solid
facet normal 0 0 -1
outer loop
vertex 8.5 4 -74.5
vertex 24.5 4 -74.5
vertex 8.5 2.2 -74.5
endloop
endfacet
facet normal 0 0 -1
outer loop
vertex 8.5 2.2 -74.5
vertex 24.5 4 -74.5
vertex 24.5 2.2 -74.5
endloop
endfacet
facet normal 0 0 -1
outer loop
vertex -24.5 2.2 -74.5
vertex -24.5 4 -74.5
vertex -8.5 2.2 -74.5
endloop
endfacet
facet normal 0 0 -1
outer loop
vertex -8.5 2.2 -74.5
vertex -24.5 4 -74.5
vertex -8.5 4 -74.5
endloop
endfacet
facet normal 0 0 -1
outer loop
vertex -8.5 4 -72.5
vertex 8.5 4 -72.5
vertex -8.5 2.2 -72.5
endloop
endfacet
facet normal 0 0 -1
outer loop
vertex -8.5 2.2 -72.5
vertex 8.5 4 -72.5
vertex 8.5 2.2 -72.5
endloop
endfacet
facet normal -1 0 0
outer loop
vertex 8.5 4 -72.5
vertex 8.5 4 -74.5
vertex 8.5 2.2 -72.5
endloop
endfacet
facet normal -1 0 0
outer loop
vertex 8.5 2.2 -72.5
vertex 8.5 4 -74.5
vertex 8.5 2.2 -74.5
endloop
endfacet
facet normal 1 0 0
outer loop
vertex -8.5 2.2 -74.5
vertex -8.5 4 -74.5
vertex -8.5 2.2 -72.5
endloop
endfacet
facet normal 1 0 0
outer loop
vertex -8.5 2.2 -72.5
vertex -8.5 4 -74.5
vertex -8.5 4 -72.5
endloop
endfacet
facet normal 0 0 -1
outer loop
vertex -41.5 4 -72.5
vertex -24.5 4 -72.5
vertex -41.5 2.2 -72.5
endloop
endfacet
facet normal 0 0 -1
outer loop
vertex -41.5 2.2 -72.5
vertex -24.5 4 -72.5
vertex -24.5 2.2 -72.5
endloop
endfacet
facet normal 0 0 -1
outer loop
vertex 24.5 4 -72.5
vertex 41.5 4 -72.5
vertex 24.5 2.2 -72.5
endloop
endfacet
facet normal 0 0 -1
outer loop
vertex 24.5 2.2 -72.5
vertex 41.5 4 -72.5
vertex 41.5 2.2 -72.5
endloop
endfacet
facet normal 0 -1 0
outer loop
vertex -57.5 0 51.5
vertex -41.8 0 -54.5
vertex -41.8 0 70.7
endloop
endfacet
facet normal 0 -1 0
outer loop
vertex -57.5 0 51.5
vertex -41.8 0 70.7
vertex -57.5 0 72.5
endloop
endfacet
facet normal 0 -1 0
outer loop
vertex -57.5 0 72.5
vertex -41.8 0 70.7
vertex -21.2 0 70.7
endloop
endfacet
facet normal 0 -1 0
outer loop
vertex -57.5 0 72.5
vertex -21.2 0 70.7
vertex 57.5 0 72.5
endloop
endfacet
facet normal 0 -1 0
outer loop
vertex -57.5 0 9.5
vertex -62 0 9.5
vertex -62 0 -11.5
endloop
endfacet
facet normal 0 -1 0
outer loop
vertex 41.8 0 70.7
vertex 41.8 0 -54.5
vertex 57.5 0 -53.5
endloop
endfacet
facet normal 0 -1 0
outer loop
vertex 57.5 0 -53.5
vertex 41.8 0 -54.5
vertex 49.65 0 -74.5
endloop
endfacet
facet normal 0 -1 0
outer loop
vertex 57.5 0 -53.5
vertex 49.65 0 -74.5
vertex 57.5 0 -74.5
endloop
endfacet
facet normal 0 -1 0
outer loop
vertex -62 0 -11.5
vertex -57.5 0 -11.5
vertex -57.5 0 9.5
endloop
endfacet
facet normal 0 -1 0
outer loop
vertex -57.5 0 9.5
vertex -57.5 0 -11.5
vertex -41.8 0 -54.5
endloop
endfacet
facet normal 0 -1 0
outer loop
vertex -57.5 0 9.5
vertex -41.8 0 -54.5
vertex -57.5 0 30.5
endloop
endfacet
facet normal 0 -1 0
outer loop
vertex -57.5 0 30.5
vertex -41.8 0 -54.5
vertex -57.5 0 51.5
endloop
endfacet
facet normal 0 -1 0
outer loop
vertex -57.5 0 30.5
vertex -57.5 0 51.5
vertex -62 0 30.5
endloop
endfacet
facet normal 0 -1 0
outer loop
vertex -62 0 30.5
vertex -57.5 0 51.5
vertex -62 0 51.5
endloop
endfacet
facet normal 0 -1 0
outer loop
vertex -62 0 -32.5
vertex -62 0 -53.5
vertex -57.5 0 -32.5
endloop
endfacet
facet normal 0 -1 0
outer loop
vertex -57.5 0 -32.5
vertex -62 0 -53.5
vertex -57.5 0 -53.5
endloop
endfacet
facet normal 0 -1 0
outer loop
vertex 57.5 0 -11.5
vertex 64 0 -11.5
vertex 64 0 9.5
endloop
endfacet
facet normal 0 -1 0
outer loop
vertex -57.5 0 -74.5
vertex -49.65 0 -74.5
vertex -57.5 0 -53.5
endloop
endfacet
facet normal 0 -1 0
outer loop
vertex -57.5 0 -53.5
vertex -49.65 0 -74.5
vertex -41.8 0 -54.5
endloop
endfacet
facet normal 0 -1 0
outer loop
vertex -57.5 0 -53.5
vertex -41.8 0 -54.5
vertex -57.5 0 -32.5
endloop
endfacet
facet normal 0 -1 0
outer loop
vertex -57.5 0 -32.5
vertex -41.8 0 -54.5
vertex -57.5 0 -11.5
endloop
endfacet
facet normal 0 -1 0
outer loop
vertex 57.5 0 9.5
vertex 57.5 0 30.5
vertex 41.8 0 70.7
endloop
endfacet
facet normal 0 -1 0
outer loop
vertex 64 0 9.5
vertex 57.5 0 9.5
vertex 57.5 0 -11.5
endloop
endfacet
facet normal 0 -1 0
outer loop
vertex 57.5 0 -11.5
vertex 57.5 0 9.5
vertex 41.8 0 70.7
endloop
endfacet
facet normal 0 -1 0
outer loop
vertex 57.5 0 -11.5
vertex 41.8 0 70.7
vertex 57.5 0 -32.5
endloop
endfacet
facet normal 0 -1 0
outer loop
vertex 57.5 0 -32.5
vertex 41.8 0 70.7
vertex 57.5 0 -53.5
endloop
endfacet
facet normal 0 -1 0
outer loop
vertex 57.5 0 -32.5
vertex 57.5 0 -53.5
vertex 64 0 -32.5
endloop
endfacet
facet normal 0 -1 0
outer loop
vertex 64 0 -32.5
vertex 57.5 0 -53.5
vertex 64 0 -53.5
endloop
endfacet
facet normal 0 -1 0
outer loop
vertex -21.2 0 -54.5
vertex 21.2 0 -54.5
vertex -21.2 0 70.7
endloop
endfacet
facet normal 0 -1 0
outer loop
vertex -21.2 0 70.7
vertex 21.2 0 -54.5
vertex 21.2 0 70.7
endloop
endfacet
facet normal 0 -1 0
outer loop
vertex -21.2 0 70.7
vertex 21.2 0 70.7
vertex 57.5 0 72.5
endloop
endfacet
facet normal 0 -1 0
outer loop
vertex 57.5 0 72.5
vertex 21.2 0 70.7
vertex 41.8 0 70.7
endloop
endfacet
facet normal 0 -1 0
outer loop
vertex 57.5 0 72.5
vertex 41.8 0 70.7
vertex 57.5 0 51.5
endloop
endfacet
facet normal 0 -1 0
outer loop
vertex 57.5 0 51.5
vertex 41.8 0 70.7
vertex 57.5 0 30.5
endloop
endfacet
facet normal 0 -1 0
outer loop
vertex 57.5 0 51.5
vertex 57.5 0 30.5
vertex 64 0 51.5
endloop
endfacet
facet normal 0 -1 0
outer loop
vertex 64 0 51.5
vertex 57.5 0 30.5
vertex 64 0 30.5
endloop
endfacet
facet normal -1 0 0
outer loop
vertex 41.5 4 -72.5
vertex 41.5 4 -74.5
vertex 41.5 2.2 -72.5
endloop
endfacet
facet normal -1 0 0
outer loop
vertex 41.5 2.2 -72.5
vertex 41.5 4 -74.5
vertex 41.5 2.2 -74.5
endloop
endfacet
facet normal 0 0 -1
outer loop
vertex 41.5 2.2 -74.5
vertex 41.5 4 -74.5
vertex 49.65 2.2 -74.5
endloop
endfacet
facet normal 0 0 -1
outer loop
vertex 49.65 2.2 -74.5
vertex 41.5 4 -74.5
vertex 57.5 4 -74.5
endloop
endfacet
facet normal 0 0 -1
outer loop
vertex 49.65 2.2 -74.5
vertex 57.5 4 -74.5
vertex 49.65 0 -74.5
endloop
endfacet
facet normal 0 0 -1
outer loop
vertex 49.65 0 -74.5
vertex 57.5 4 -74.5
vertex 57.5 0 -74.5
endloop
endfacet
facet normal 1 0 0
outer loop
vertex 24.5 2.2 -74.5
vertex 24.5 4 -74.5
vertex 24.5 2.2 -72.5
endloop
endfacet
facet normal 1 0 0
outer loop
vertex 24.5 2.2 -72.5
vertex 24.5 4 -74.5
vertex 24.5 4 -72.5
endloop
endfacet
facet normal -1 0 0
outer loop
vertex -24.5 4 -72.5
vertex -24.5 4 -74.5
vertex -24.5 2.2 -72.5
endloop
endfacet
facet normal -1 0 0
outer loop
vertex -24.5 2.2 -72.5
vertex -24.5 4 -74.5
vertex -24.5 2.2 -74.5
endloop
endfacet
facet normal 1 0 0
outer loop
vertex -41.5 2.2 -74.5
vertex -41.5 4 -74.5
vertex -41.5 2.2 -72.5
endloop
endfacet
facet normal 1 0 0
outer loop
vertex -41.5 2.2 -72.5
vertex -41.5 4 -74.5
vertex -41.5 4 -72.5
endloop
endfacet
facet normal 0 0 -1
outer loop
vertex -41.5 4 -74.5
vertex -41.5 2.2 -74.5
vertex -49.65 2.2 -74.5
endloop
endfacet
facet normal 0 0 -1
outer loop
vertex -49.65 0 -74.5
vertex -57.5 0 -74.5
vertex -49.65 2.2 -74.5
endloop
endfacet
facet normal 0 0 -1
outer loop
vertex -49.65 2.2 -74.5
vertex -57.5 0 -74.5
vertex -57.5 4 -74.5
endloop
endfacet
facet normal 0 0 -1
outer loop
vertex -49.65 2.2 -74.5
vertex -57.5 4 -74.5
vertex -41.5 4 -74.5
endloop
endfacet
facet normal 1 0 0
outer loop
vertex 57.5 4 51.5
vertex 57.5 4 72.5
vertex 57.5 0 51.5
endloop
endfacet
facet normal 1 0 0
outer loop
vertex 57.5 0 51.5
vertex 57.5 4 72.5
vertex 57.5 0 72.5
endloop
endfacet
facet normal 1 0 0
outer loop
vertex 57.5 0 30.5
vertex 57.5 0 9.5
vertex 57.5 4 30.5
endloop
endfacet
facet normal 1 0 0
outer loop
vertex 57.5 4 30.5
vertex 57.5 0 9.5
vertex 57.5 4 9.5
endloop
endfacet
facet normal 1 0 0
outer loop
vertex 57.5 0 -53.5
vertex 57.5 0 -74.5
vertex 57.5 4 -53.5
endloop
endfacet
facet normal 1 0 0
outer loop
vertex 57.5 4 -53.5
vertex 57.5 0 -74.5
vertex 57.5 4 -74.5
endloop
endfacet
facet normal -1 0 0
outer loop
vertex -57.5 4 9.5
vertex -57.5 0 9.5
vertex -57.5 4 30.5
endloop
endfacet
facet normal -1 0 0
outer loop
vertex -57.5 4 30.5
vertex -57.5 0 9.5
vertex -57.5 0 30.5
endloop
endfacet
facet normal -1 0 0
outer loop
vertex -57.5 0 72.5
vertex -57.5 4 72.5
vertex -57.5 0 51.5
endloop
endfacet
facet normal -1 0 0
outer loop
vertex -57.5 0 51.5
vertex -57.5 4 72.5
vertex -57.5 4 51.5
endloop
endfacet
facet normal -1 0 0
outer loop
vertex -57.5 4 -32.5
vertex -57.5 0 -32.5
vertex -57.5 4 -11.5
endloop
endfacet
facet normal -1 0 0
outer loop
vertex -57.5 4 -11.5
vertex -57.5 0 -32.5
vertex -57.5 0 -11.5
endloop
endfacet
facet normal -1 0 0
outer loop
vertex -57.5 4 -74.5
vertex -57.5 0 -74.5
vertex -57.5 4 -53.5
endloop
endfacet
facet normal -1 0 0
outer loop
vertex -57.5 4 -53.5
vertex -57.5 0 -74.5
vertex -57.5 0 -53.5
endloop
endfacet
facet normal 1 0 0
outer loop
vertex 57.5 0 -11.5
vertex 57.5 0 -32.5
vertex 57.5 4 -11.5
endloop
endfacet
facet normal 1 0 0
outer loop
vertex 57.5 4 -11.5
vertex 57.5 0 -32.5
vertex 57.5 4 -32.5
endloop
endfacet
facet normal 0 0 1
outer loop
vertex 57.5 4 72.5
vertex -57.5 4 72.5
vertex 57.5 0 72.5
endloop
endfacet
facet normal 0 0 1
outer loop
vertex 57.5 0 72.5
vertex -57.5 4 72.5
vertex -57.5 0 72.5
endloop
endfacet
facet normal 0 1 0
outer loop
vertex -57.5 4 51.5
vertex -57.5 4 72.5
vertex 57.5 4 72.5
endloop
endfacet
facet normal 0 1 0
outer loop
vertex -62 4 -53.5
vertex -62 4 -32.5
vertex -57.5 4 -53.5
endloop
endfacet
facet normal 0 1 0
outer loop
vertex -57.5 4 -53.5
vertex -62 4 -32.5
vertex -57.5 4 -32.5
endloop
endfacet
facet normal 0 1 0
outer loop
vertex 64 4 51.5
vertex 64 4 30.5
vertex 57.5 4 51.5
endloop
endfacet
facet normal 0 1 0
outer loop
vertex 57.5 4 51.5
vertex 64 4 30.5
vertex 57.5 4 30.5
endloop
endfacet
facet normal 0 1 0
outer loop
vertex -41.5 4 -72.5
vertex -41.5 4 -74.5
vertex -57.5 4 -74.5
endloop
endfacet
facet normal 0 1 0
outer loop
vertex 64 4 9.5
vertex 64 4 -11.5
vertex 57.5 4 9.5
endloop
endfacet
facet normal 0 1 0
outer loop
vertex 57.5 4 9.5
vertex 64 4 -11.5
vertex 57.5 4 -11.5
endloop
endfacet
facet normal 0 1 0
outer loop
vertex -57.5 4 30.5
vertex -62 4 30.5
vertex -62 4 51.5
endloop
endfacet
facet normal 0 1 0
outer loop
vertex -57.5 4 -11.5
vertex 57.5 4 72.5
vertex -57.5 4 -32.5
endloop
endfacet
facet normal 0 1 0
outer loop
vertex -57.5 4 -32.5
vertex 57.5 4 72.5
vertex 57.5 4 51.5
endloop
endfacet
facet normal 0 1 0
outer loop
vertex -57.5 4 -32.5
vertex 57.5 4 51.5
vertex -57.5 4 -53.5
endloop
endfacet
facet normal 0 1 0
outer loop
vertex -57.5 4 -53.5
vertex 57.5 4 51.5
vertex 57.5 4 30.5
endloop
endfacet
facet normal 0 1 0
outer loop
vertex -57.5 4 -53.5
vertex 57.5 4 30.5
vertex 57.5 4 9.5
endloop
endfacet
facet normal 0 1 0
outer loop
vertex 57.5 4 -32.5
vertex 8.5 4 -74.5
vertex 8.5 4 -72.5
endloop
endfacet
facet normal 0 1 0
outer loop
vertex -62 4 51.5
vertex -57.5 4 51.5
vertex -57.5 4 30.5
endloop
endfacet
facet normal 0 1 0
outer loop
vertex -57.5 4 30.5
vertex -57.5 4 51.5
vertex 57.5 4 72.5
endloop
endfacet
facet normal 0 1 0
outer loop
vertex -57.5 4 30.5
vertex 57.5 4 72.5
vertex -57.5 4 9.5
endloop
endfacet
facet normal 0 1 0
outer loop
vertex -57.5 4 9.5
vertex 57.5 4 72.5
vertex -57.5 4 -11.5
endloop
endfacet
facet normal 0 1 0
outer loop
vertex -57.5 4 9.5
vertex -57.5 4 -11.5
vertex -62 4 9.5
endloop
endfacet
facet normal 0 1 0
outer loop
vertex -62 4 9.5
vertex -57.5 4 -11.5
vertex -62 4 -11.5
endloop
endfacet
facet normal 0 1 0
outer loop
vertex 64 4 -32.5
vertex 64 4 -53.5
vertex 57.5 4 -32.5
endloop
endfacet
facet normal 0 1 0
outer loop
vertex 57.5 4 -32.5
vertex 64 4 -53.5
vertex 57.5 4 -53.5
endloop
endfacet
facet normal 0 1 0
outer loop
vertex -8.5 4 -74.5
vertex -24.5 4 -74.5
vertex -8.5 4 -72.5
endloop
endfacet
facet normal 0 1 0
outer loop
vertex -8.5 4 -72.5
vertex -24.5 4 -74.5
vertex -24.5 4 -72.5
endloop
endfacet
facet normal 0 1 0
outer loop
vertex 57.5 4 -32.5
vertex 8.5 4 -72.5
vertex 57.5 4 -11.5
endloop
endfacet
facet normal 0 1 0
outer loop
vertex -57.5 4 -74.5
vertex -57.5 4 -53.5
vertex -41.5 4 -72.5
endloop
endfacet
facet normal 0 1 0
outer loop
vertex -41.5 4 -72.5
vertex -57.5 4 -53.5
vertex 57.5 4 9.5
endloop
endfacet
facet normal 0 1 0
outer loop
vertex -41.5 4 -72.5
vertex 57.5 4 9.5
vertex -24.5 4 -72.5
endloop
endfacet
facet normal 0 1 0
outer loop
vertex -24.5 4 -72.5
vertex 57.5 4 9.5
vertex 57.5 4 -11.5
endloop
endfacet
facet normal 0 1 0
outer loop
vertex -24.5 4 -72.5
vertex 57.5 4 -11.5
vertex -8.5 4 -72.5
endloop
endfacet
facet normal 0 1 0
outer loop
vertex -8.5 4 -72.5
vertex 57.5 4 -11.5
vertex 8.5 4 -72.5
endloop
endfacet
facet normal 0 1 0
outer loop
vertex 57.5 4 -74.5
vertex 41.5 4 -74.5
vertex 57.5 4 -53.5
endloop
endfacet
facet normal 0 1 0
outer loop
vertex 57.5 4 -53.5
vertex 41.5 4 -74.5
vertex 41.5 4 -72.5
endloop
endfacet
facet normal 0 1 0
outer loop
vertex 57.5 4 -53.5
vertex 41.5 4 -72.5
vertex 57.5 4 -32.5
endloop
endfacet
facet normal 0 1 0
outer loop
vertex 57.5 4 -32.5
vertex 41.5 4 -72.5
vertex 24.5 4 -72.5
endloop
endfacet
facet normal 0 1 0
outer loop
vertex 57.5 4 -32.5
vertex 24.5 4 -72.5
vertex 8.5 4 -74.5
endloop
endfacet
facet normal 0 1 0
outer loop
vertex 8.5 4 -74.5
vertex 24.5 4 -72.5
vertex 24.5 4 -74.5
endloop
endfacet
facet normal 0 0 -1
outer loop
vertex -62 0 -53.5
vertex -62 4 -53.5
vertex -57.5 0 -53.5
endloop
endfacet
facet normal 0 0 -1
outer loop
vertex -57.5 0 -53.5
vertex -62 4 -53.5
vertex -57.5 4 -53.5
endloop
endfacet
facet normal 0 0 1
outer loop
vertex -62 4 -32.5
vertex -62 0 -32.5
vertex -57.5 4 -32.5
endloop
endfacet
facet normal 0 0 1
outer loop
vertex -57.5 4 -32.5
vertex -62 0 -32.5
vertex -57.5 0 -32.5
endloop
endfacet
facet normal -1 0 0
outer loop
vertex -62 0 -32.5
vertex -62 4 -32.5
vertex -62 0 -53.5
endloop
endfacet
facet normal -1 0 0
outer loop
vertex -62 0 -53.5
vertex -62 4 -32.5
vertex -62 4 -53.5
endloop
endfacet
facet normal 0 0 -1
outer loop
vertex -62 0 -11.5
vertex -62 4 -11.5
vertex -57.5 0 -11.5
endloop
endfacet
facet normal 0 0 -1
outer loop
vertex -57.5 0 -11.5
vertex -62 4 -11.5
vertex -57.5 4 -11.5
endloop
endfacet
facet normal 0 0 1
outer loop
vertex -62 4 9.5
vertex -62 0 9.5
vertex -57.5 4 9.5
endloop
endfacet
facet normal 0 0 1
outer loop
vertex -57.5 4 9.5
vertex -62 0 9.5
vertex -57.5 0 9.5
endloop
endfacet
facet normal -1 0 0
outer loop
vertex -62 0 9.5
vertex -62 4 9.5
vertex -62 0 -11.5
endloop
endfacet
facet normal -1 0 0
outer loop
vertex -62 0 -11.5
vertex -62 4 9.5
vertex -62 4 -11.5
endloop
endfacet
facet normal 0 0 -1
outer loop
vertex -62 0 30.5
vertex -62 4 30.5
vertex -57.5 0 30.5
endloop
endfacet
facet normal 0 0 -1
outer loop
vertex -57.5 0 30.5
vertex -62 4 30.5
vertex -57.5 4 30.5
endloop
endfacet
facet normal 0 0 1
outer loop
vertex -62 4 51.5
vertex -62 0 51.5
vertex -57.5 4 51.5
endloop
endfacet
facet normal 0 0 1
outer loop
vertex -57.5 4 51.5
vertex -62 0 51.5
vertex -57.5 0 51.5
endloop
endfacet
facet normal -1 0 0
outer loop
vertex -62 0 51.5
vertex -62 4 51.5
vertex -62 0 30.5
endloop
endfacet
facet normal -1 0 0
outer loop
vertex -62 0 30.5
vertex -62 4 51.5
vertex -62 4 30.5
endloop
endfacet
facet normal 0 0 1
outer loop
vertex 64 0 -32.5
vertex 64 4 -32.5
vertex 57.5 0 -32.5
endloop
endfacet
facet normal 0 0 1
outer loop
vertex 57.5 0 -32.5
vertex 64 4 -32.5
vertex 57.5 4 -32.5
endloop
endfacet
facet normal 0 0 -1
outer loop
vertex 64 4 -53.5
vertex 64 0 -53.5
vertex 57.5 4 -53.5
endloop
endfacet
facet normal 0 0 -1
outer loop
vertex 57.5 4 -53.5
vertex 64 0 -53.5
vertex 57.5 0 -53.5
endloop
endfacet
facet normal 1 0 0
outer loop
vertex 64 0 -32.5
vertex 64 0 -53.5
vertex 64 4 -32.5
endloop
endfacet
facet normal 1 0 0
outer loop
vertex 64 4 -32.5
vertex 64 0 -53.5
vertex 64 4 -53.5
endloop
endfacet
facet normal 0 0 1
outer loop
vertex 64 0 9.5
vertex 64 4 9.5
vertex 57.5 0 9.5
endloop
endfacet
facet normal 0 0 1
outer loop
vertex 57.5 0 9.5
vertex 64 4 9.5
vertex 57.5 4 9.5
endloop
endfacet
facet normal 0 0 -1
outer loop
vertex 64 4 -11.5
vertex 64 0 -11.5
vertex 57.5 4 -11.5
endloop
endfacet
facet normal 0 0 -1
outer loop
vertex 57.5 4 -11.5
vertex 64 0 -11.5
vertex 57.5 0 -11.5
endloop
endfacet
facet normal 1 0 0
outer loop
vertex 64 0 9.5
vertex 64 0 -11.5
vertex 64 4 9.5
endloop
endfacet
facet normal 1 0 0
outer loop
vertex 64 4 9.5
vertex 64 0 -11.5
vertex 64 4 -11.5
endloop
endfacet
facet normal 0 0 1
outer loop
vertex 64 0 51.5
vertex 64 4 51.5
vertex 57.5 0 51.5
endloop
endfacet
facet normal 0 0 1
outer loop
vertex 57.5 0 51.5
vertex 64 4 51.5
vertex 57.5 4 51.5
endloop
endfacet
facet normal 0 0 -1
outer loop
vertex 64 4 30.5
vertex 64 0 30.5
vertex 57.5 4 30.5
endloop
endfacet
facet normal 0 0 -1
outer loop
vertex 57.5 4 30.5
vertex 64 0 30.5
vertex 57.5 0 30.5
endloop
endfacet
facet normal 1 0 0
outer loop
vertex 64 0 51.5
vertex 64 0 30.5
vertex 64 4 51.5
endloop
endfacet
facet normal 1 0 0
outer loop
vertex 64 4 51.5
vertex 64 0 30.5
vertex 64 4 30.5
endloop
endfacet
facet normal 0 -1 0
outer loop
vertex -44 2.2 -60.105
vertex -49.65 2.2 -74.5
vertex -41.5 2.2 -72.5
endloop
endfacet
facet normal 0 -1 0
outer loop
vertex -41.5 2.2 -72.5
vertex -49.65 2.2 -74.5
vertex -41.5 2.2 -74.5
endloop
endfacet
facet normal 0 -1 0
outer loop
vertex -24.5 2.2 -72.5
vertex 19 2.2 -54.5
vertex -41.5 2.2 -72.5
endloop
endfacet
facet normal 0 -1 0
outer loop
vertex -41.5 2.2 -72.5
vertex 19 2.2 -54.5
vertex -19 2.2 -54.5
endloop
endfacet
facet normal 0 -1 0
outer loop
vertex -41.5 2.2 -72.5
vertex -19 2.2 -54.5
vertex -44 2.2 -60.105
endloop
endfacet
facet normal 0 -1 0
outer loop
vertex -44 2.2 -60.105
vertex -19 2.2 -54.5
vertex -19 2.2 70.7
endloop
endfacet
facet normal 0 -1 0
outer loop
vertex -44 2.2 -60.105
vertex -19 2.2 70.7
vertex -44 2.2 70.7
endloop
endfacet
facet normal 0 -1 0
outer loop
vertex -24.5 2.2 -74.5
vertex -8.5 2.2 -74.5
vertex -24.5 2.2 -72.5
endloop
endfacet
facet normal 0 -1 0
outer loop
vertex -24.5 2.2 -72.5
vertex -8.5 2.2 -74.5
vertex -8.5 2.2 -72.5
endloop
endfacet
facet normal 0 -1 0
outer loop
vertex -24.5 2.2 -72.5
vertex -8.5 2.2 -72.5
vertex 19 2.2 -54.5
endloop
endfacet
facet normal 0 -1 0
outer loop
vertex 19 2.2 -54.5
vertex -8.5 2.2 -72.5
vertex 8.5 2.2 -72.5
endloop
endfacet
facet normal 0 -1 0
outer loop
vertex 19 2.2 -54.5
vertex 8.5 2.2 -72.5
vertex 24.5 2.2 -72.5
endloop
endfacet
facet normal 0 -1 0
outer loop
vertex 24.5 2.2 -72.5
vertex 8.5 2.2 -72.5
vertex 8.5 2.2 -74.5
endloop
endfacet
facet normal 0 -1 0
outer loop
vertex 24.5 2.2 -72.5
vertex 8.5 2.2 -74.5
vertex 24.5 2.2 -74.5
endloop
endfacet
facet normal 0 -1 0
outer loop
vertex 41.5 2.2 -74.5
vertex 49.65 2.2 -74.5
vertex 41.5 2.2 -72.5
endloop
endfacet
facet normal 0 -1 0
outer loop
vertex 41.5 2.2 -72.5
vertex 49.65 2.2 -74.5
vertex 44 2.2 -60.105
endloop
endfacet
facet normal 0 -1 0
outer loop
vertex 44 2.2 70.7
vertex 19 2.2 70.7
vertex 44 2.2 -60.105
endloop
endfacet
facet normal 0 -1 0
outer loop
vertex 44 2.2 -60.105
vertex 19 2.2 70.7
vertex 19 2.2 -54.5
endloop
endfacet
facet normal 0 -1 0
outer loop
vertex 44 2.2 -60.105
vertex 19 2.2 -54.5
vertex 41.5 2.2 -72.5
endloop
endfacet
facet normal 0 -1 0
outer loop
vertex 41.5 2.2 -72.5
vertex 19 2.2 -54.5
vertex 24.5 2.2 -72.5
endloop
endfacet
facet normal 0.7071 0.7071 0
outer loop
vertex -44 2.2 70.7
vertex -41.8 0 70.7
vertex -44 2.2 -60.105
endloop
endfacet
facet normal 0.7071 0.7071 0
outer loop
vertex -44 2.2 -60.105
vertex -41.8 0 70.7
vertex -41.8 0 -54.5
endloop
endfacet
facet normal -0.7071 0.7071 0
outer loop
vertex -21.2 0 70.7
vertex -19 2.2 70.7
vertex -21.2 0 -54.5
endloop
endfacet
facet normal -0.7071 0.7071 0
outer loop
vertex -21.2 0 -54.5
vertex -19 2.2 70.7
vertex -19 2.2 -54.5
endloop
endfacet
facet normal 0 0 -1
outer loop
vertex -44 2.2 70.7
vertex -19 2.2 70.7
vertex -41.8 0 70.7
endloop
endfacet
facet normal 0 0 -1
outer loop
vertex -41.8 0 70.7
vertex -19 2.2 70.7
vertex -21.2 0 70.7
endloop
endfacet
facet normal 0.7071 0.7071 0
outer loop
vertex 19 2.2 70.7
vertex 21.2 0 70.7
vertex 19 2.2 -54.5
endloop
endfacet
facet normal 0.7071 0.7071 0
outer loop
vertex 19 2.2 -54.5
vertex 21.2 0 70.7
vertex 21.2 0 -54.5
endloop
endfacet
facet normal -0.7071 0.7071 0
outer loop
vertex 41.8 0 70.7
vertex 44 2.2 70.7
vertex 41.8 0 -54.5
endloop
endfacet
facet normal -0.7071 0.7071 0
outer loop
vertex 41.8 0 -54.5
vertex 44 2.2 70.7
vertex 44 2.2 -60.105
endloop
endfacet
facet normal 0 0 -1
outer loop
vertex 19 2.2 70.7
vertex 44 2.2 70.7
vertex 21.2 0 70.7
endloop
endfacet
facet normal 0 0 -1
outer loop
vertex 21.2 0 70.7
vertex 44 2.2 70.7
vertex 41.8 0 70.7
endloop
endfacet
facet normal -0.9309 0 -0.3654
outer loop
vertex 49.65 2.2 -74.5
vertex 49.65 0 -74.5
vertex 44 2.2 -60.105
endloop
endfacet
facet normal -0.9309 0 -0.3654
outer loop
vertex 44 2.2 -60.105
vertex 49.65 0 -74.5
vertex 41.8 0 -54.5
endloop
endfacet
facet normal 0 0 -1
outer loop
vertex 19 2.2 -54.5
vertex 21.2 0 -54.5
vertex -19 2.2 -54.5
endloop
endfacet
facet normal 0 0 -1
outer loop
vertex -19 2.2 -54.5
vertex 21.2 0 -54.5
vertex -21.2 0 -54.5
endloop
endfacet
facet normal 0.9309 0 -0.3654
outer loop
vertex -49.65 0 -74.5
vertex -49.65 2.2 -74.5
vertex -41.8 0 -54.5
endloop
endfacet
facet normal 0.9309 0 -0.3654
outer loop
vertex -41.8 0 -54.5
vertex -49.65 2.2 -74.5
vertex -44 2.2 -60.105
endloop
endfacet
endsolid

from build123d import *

# Parameters (mm, degrees)
SKETCH_4_W          = 115
SKETCH_4_H          = 145
EXTRUDE_1_DEPTH     = 4
SKETCH_5_W          = 16
SKETCH_5_H          = 4
EXTRUDE_2_DEPTH     = 2
SKETCH_6_W          = 21
SKETCH_6_H          = 4
EXTRUDE_3_DEPTH     = 4.5
EXTRUDE_START       = -115
SKETCH_6_2_W        = 21
SKETCH_6_2_H        = 4
EXTRUDE_4_DEPTH     = 6.5
CUT_EXTRUDE_START   = -1.8
SKETCH_7_W          = 20.6
SKETCH_7_H          = 2.2
CUT_EXTRUDE_1_DEPTH = 159.577679245
CUT_EXTRUDE_2_DEPTH = 99.239961319


with BuildPart() as part:
    # 草图4 → 凸台-拉伸1 (new body)
    with BuildSketch(Plane(origin=(0, 0, 0), x_dir=(1, 0, 0), z_dir=(0, 1, 0))):
        Rectangle(SKETCH_4_W, SKETCH_4_H)
    extrude(amount=EXTRUDE_1_DEPTH)

    # 草图5 → 凸台-拉伸2 (add)
    with BuildSketch(Plane(origin=(0, 0, -72.5), x_dir=(-1, 0, 0), z_dir=(0, 0, -1))):
        with Locations((-49.5, 2)):
            Rectangle(SKETCH_5_W, SKETCH_5_H)
        with Locations((-16.5, 2)):
            Rectangle(SKETCH_5_W, SKETCH_5_H)
        with Locations((16.5, 2)):
            Rectangle(SKETCH_5_W, SKETCH_5_H)
        with Locations((49.5, 2)):
            Rectangle(SKETCH_5_W, SKETCH_5_H)
    extrude(amount=EXTRUDE_2_DEPTH)

    # 草图6 → 凸台-拉伸3 (add)
    with BuildSketch(Plane.ZY.offset(57.5)):
        with Locations((-43, 2)):
            Rectangle(SKETCH_6_W, SKETCH_6_H)
        with Locations((-1, 2)):
            Rectangle(SKETCH_6_W, SKETCH_6_H)
        with Locations((41, 2)):
            Rectangle(SKETCH_6_W, SKETCH_6_H)
    extrude(amount=EXTRUDE_3_DEPTH)

    # 草图6<2> → 凸台-拉伸4 (add)
    with BuildSketch(Plane.ZY.offset(57.5).offset(EXTRUDE_START)):
        with Locations((-43, 2)):
            Rectangle(SKETCH_6_2_W, SKETCH_6_2_H)
        with Locations((-1, 2)):
            Rectangle(SKETCH_6_2_W, SKETCH_6_2_H)
        with Locations((41, 2)):
            Rectangle(SKETCH_6_2_W, SKETCH_6_2_H)
    extrude(amount=-EXTRUDE_4_DEPTH)

    # 草图7 → 切除-拉伸1 (cut, through all)
    with BuildSketch(Plane.XY.offset(72.5).offset(CUT_EXTRUDE_START)):
        with Locations((31.5, 1.1)):
            Rectangle(SKETCH_7_W, SKETCH_7_H)
        with Locations((-31.5, 1.1)):
            Rectangle(SKETCH_7_W, SKETCH_7_H)
        Polygon((-21.2, 2.2), (-19, 2.2), (-21.2, 0), align=None)
        Polygon((-41.8, 2.2), (-41.8, 0), (-44, 2.2), align=None)
        Polygon((41.8, 2.2), (44, 2.2), (41.8, 0), align=None)
        Polygon((21.2, 2.2), (21.2, 0), (19, 2.2), align=None)
    extrude(amount=-CUT_EXTRUDE_1_DEPTH, mode=Mode.SUBTRACT)

    # 草图8 → 切除-拉伸2 (cut, through all)
    with BuildSketch(Plane.XZ.offset(-2.2)):
        Polygon((-49.65, -74.5), (-41.8, -54.5), (41.8, -54.5), (49.65, -74.5), align=None)
    extrude(amount=CUT_EXTRUDE_2_DEPTH, mode=Mode.SUBTRACT)


solid = part.part
